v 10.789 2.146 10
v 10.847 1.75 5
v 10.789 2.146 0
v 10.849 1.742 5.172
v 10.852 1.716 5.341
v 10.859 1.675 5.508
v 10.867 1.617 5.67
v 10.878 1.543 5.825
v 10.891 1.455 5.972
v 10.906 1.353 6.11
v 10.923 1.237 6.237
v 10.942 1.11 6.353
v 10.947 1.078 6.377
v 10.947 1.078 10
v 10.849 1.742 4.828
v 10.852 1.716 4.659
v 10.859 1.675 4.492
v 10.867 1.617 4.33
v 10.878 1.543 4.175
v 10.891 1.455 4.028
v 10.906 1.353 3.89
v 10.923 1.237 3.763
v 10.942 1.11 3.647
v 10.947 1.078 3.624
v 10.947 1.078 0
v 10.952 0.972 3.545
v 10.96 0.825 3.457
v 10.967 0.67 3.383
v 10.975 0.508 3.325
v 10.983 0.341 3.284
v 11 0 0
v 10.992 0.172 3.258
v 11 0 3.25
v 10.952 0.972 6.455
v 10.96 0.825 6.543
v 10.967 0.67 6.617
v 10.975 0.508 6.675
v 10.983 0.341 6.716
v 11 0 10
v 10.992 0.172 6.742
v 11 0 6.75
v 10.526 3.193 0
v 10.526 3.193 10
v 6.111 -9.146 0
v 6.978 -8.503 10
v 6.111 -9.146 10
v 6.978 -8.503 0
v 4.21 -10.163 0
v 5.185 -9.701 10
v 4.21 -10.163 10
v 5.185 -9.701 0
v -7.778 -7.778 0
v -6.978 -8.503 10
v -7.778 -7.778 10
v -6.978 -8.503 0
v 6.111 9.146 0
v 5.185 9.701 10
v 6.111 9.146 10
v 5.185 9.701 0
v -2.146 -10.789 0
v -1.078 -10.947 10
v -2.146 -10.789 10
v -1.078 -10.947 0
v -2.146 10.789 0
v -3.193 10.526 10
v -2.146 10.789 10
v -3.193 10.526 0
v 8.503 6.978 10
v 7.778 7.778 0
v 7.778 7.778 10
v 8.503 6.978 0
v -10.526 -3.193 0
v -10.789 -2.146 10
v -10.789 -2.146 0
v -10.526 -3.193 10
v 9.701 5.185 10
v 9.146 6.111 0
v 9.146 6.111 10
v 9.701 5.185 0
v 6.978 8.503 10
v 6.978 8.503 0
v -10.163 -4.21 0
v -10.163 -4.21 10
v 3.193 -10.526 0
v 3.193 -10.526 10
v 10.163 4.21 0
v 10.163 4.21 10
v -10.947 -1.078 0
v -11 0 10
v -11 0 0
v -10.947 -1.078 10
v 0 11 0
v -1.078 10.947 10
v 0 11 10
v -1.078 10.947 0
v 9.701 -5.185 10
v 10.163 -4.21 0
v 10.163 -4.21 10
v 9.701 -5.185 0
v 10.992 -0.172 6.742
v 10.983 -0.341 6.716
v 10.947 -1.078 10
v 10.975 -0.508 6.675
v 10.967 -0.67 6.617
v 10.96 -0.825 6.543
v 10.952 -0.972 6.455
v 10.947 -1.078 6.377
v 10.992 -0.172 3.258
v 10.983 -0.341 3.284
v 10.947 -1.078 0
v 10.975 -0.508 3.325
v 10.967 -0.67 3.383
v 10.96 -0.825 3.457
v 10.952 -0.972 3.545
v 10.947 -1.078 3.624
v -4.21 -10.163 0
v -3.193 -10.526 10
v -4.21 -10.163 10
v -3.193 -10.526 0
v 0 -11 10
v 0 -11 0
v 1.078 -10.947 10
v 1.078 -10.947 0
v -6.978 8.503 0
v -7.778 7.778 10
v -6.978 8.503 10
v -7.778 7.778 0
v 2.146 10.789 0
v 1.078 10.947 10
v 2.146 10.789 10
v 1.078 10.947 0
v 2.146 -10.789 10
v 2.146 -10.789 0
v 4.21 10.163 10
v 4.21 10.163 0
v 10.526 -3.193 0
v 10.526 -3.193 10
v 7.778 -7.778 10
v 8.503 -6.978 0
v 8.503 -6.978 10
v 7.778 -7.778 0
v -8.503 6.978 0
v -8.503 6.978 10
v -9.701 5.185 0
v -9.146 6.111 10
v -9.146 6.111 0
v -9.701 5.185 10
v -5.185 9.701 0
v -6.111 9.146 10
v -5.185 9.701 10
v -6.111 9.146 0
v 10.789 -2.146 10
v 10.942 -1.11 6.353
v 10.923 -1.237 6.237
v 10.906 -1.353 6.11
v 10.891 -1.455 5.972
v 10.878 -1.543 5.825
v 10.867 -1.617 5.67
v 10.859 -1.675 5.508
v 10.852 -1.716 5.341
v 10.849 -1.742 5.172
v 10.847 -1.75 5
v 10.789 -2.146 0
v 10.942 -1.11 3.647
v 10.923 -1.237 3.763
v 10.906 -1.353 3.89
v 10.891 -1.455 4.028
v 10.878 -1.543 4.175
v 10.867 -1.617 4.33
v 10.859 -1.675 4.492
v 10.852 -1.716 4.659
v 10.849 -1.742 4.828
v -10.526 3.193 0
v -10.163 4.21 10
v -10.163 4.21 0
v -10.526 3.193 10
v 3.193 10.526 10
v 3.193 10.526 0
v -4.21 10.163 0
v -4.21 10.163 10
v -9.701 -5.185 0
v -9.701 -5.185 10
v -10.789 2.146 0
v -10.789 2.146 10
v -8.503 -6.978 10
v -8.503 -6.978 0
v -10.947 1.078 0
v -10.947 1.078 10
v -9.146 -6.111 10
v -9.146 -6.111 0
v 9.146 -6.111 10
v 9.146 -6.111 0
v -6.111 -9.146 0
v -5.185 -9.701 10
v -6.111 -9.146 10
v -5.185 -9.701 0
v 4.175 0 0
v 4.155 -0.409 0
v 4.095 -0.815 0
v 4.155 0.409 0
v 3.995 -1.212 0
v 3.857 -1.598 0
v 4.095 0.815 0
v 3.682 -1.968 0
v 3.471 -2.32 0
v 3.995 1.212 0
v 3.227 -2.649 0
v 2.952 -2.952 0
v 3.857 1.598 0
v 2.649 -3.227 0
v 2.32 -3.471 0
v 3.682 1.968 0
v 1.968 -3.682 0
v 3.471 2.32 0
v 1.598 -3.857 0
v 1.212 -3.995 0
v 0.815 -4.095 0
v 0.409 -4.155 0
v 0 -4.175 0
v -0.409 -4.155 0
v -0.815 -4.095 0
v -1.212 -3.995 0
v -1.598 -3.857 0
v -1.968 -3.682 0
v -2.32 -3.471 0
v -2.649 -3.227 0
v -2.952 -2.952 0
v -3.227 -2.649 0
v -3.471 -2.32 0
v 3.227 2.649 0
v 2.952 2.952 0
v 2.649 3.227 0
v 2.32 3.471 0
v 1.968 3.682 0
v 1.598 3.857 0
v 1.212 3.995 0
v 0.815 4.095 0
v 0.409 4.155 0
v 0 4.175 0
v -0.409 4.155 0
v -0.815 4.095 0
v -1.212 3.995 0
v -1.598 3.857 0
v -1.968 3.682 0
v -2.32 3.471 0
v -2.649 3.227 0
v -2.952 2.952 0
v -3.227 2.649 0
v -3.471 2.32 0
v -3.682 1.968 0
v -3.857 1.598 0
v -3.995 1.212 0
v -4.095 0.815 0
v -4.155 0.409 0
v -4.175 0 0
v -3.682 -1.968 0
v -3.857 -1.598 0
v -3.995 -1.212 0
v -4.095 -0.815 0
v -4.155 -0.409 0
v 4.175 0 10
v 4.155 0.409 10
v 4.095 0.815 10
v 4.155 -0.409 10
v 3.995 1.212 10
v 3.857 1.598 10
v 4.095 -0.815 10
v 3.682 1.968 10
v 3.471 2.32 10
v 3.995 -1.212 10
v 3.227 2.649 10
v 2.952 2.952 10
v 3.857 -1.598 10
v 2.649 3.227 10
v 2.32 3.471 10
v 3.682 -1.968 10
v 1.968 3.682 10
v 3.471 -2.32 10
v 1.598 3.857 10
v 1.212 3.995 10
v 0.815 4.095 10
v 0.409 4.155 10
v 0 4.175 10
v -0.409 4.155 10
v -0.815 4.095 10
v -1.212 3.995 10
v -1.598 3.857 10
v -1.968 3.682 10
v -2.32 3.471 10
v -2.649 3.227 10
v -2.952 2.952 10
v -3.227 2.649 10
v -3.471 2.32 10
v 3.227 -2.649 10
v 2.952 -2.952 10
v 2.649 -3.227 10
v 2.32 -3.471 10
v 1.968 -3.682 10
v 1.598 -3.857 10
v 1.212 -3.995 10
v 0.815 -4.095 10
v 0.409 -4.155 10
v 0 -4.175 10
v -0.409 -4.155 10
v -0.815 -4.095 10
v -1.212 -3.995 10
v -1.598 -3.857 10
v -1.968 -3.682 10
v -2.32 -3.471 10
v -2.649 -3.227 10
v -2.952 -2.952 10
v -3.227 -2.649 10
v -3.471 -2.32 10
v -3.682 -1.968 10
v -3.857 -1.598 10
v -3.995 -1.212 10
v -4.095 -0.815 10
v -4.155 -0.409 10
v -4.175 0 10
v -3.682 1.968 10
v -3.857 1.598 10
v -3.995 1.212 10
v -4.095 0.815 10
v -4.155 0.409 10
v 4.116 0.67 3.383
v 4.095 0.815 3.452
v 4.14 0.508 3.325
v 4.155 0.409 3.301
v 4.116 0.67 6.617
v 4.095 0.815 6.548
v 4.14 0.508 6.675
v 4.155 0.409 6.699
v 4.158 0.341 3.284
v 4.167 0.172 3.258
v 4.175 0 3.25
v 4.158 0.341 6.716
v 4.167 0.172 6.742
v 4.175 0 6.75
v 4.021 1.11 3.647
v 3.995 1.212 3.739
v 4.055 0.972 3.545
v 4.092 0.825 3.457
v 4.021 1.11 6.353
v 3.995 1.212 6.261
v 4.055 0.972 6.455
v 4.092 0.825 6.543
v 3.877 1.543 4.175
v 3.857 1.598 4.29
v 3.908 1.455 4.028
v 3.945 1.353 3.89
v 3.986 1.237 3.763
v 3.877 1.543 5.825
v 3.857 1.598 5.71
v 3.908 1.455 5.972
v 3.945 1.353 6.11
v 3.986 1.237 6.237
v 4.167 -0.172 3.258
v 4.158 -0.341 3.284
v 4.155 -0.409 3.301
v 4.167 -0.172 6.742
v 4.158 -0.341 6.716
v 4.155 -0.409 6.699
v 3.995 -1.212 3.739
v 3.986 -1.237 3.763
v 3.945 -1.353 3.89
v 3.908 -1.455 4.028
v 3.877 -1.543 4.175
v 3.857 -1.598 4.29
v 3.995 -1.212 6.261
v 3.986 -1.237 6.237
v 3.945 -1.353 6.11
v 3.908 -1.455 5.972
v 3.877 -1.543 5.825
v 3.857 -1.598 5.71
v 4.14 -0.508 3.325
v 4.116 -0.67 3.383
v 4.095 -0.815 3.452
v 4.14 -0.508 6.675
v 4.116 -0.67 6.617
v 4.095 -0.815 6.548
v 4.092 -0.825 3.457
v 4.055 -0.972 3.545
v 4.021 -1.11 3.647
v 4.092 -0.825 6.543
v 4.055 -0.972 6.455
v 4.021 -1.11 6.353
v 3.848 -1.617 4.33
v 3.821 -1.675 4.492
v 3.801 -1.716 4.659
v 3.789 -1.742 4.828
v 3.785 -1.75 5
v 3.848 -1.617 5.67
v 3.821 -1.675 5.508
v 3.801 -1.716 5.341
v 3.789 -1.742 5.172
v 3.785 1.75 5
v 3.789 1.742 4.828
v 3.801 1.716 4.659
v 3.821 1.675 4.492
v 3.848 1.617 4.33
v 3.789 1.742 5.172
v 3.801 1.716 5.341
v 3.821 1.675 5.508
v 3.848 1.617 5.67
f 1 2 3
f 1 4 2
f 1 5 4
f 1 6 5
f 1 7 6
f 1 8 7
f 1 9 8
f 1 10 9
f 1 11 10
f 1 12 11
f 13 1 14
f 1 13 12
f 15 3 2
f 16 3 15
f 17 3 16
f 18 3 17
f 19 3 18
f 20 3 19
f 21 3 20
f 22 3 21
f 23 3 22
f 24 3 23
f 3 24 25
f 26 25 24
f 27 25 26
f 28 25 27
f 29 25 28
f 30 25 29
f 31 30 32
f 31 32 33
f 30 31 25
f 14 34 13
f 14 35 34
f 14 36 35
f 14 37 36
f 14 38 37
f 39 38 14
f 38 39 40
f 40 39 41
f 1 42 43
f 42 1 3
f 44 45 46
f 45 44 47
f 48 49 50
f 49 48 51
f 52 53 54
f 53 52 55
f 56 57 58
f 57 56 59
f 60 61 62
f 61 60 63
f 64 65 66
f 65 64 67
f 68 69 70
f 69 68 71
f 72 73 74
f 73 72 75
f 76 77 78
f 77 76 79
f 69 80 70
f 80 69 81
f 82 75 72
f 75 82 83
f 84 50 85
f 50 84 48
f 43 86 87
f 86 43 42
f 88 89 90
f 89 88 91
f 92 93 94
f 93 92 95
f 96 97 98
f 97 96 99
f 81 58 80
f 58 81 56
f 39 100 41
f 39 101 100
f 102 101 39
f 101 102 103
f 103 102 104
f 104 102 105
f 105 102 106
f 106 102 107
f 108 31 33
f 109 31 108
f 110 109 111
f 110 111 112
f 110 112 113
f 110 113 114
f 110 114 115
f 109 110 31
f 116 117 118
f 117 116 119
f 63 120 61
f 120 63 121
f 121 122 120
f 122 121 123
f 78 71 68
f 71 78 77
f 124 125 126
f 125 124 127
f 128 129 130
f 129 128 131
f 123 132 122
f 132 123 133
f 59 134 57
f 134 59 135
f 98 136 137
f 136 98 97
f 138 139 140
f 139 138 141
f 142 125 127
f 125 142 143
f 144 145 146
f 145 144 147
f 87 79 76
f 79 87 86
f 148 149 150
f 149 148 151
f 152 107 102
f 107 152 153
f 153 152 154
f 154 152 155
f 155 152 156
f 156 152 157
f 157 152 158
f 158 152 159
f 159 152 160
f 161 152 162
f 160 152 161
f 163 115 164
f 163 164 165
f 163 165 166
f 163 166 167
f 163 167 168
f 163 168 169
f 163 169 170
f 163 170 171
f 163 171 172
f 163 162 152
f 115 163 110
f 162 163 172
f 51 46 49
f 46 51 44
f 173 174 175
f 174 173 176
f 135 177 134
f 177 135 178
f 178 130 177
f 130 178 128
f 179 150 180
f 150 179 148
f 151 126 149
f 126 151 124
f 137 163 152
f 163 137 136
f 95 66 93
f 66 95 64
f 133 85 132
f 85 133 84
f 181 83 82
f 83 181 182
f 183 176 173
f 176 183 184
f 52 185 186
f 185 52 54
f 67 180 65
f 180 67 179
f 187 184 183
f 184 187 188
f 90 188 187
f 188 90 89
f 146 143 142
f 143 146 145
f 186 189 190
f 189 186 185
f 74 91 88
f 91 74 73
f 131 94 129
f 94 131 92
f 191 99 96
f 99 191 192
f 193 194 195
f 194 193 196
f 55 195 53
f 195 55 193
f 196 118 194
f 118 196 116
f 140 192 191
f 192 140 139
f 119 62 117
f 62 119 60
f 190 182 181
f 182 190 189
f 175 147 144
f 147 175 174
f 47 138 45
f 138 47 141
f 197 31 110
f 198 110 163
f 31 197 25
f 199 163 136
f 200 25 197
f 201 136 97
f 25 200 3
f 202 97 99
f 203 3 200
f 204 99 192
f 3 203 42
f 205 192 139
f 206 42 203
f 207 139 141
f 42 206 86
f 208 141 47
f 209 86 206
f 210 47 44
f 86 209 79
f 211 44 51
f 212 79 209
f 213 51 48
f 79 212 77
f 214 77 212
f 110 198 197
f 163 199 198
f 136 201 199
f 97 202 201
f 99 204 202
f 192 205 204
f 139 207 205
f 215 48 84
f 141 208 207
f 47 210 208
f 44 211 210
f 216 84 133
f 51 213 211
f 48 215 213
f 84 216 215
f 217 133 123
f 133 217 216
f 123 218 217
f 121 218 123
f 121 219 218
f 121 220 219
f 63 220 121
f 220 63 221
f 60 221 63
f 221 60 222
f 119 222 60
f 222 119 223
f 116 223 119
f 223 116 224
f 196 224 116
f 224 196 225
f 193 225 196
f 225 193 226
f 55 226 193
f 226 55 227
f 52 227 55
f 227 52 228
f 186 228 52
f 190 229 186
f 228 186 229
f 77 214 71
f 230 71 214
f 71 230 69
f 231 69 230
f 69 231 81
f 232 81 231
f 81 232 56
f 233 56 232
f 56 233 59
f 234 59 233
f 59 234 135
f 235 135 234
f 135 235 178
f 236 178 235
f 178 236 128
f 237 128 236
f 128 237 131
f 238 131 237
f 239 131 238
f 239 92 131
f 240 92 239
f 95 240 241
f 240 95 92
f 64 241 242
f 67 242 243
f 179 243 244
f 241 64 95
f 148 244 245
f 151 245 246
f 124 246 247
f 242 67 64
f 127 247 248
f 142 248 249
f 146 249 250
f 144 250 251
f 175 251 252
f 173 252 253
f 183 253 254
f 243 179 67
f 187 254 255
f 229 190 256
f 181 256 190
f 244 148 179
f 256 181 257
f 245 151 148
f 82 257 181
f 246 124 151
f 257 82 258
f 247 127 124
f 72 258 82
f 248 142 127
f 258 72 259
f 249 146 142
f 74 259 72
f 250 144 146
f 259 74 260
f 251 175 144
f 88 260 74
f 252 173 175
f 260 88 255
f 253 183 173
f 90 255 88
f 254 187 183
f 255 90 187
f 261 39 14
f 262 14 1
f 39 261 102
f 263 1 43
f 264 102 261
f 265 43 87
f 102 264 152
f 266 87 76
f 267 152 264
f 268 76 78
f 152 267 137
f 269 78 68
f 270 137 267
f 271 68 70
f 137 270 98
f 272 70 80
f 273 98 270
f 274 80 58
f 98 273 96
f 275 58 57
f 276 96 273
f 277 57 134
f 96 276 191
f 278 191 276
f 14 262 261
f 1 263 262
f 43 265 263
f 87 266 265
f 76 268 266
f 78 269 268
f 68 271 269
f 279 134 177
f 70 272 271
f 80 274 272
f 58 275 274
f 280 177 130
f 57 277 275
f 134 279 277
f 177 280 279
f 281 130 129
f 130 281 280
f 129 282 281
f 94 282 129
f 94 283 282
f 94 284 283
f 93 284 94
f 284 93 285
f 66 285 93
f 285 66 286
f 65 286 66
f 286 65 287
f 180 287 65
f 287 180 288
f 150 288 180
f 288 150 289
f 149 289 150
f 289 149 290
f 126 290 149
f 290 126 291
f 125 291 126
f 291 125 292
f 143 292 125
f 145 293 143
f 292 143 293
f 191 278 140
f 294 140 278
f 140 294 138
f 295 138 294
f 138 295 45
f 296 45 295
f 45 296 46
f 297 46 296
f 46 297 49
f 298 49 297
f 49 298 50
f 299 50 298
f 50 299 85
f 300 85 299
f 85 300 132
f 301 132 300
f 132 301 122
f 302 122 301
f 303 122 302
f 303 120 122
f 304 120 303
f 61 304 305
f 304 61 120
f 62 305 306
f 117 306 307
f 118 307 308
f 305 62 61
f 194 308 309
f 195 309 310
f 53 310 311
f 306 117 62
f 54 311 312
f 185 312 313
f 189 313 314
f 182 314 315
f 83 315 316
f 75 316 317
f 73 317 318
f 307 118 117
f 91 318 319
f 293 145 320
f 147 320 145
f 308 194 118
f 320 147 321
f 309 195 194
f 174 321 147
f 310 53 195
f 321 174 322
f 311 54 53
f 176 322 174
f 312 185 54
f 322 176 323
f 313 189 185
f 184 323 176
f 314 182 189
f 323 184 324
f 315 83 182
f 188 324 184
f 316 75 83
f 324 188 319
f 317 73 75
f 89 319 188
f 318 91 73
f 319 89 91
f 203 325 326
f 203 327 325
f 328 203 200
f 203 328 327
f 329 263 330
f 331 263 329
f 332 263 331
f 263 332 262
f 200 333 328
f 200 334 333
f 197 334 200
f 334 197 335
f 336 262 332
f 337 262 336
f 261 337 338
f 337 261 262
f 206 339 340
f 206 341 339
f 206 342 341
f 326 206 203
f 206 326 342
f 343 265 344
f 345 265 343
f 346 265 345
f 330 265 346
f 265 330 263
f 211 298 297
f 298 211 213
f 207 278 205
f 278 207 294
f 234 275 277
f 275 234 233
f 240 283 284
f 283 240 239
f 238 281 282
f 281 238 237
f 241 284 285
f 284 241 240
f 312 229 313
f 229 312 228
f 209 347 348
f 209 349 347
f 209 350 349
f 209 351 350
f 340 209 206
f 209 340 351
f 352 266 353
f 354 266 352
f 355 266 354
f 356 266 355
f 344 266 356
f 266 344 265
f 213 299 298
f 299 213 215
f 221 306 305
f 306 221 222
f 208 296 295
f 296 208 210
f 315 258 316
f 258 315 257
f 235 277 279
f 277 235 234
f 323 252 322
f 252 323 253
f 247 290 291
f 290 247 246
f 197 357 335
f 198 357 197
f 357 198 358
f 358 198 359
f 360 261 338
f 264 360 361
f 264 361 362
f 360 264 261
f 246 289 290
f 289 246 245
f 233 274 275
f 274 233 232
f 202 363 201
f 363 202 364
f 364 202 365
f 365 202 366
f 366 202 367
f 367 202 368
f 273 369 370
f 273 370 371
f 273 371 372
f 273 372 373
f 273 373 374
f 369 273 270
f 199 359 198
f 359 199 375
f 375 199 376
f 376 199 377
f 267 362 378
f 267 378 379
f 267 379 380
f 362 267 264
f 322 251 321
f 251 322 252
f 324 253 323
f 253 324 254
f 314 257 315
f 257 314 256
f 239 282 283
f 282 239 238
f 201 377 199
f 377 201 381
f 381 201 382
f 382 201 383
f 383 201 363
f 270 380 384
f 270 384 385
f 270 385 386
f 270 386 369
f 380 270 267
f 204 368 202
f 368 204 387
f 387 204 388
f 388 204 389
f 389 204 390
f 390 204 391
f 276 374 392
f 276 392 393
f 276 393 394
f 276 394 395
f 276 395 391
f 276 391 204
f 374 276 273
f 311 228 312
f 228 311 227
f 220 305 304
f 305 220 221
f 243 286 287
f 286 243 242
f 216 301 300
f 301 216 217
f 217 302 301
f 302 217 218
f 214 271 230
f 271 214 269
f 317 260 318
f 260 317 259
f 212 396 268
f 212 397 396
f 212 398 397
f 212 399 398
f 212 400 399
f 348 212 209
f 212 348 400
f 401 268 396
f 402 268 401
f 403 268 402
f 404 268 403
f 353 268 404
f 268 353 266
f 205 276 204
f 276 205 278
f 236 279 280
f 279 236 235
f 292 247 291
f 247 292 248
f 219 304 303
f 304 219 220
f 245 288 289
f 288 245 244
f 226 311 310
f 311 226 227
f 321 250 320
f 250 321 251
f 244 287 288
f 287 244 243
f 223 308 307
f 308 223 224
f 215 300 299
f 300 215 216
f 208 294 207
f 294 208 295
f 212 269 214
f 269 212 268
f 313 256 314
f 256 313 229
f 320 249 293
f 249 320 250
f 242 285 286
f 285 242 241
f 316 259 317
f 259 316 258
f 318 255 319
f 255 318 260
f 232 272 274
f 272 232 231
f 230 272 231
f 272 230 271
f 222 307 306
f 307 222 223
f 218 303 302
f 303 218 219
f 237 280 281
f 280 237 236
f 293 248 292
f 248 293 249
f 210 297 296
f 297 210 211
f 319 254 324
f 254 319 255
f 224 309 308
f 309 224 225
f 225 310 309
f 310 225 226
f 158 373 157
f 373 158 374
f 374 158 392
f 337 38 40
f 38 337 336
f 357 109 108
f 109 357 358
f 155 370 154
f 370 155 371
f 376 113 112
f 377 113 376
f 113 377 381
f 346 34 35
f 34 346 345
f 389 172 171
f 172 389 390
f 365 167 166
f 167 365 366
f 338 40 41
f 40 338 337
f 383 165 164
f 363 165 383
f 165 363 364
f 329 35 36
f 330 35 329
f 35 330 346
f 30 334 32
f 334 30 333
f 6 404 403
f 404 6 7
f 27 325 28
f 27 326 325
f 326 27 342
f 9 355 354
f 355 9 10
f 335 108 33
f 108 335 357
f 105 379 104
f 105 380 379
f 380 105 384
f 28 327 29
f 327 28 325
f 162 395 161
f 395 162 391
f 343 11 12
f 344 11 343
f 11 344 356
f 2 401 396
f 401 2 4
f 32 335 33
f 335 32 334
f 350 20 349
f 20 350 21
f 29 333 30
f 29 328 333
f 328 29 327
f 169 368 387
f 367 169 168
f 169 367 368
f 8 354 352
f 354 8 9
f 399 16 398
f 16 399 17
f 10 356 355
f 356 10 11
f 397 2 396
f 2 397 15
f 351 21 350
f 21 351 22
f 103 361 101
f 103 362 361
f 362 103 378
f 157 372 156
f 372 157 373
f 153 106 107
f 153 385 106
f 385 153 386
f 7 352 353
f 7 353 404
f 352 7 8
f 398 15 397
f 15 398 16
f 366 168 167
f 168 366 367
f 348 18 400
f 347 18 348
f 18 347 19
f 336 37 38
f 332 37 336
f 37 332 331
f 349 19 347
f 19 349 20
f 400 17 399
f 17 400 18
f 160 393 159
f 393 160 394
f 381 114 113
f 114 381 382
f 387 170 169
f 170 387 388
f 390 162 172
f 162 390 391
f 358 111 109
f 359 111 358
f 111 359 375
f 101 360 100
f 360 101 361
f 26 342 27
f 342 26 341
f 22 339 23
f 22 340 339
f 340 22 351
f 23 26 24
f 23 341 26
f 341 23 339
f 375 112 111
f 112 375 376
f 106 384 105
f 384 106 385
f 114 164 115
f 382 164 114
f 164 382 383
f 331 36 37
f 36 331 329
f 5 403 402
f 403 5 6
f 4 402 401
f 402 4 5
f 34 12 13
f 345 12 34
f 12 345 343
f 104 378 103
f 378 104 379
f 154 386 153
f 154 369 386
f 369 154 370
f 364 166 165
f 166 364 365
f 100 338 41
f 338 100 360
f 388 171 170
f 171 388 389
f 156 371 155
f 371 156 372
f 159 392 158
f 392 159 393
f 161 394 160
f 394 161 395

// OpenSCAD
// file: parameters.scad
// =============================================================================
// Gen-AF Stacked dual-stator mid-rotor Halbach copper-max — WOUND-AWARE
// TWO wound pancake stators | ONE mid dual-face Halbach rotor | outer endbells
// Beats Gen-AF: thinner m2m 5.11, larger copper window, 135 t / coil
// =============================================================================

wire_awg            = 26;
wire_od             = 0.45;
turns               = 135;      // 9 coils/stator ×2 = 18 ×135 ×~0.118 ≈ 287 m
fill                = 0.70;
layers_per_face     = 2;
wind_build_axial    = layers_per_face * wire_od * fill;   // 0.63
wind_build_radial   = 2.8 * wire_od * fill;               // 0.882

coil_id_r           = 20.0;     // larger than Gen-AF 21–60
coil_od_r           = 62.0;
span_deg            = 34.0;     // 9 stations × 40°
former_web          = 1.55;
flange_t            = 0.60;
wall                = 1.2;
slot_w              = 2.4;
mount_hole          = 3.5;
tab_len             = 7.0;

former_bare_h       = former_web + 2 * flange_t;            // 2.75
coil_envelope_h     = former_bare_h + 2 * wind_build_axial; // 4.01

run_clear           = 0.55;
gap_spacer_h        = run_clear + wind_build_axial;         // 1.18
m2m                 = coil_envelope_h + 2 * run_clear;      // 5.11 per gap (beats Gen-AF 5.46)

coil_stations       = 9;        // per stator; ×2 = 18 total
bay_r_in            = coil_id_r - 2.0 - wind_build_radial;
bay_r_out           = coil_od_r + 2.0 + wind_build_radial;
bay_span            = span_deg + 4.0;
bay_offset          = 2.0;
bay_depth           = former_bare_h + wind_build_axial;
stator_back_web     = 2.0;
stator_thick        = bay_depth + stator_back_web;
stator_od           = 156.0;
shaft_clear_stator  = 40.0;
coil_mount_r        = 30.0;

large_pocket_d      = 20.3;
small_pocket_d      = 5.3;
pocket_h            = 5.2;
large_n             = 8;
R_large             = 52.0;
R_small_inner       = 40.0;
R_small_mid         = 52.0;
R_small_outer       = 64.0;
carrier_od          = 152.0;
mid_carrier_thick   = 12.0;
hub_h               = 10.0;
hub_od              = 30.0;
rotor_b_offset_deg  = 22.5;

shaft_bore          = 8.35;
bearing_d           = 21.85;
bearing_h           = 7.2;
m3_clear            = 3.5;
bolt_r_inner        = 36.0;
bolt_n_inner        = 6;
flange_bolt_r       = 72.0;
flange_bolt_n       = 6;
brace_r             = 68.0;
brace_d             = 4.3;
brace_n             = 4;

spacer_pad_od       = 14.0;
spacer_pad_id       = m3_clear;
endbell_od          = 156.0;
endbell_thick       = 8.0;
endbell_shaft_clear = 10.0;

$fn = 64;
// main file
// Gen-AF shaft collar — print ×2–4
include <parameters.scad>;
$fn = 64;
od = 22; id = shaft_bore; h = 10; set_d = 3.5;
difference() {
    cylinder(d=od, h=h);
    translate([0, 0, -0.1]) cylinder(d=id, h=h + 0.2);
    translate([0, 0, h/2]) rotate([0, 90, 0]) cylinder(d=set_d, h=od);
}
